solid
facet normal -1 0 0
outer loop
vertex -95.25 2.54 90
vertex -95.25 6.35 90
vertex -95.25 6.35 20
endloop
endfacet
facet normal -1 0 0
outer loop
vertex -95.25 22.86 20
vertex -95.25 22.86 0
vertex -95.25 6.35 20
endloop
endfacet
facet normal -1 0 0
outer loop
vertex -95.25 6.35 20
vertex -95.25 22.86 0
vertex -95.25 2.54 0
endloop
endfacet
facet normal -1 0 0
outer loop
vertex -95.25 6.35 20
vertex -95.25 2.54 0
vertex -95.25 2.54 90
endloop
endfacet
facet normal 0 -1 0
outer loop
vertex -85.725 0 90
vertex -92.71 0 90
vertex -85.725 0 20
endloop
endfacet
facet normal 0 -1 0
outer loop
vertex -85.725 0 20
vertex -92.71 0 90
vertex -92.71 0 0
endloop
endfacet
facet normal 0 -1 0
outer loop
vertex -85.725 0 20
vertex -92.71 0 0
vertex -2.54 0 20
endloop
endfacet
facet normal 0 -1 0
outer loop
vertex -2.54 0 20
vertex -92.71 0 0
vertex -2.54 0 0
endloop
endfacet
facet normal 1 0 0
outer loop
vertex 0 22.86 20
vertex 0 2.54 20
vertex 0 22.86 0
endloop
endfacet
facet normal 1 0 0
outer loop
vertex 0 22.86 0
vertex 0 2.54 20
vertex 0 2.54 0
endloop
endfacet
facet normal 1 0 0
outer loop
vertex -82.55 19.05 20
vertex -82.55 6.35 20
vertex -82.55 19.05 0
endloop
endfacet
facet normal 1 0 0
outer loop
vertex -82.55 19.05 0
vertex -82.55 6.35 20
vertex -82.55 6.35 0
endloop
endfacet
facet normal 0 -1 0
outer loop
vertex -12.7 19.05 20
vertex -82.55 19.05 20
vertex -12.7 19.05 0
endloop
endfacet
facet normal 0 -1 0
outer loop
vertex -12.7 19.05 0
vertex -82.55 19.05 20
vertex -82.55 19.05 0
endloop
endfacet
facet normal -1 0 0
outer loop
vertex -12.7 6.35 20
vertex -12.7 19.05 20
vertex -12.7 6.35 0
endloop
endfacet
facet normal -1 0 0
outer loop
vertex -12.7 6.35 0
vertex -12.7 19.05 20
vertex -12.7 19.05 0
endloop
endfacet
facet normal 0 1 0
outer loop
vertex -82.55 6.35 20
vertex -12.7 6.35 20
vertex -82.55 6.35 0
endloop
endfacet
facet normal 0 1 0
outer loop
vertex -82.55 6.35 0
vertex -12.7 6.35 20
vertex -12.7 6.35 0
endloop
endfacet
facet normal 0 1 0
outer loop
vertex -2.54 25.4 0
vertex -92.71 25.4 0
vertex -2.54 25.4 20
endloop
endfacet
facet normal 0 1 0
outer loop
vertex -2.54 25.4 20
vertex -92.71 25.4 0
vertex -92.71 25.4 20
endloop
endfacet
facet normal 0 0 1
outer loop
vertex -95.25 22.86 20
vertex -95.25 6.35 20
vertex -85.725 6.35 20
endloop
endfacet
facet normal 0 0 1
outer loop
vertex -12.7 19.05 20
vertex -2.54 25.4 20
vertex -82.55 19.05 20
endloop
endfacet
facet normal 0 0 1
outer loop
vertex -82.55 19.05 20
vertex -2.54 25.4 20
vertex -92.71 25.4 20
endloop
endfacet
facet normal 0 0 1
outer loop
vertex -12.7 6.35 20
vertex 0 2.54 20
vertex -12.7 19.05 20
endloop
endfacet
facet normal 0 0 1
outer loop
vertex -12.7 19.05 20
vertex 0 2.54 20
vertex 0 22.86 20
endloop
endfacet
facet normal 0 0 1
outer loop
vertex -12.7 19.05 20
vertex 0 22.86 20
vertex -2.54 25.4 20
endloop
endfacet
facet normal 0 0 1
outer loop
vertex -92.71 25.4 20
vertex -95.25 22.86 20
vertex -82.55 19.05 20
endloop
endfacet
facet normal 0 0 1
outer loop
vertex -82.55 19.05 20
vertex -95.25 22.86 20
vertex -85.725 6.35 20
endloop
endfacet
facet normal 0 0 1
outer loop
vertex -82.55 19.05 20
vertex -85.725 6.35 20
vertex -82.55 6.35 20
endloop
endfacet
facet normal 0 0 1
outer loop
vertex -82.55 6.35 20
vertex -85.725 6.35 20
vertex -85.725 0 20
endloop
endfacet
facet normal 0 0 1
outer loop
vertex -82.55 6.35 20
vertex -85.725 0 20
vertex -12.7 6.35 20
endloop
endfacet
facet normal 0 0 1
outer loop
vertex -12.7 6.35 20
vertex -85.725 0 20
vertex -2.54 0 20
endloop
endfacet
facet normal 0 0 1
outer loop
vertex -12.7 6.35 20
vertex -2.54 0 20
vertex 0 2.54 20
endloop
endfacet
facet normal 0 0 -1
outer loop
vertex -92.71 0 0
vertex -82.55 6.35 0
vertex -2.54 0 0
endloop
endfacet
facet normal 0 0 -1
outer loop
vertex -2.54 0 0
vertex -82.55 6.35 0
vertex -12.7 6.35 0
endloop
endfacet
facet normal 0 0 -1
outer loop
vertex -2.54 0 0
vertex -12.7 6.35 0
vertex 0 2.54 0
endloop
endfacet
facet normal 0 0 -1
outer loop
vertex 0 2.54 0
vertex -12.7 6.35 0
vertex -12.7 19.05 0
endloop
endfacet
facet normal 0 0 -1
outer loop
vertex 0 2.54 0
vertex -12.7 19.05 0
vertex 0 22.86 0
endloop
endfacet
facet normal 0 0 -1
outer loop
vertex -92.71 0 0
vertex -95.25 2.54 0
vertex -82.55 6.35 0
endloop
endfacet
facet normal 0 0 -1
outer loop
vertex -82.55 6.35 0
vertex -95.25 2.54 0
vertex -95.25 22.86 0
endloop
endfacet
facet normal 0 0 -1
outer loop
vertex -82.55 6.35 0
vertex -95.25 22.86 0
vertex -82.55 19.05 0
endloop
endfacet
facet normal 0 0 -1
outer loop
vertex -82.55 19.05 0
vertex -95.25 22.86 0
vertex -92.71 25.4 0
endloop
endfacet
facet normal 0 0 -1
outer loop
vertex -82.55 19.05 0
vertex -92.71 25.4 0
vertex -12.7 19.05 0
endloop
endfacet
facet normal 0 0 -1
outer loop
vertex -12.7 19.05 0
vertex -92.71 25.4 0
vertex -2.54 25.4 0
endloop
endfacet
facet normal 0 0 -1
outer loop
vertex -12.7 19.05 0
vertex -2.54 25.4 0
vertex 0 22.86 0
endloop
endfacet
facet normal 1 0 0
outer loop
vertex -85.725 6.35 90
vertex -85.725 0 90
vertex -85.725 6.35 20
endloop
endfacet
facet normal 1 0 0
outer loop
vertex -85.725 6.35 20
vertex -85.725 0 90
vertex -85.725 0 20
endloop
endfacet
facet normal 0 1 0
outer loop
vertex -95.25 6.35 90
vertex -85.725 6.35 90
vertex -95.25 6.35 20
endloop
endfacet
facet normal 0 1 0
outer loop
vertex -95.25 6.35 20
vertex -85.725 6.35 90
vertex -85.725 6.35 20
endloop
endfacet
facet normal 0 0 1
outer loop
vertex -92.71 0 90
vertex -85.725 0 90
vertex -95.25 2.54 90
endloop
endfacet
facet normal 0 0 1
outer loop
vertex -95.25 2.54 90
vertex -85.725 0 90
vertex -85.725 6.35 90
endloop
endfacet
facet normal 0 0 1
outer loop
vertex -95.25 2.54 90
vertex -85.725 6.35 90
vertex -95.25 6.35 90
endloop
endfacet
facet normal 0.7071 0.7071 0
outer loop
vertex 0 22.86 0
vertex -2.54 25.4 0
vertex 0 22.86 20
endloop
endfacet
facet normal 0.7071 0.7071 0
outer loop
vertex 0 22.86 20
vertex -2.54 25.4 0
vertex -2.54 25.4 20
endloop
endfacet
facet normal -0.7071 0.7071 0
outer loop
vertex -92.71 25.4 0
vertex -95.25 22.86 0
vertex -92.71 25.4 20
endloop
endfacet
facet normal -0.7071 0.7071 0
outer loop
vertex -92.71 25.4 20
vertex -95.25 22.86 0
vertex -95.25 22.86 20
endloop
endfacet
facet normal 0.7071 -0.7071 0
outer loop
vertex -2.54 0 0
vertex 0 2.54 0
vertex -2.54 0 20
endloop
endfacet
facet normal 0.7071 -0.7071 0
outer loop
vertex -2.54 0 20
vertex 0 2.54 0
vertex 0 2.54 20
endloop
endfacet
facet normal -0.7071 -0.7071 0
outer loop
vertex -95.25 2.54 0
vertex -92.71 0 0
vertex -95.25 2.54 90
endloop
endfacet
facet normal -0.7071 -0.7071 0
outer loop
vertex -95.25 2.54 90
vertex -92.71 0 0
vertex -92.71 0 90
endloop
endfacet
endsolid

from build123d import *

# Parameters (mm, degrees)
SKETCH1_W           = 95.25
SKETCH1_H           = 25.4
SKETCH1_W_2         = 69.85
SKETCH1_H_2         = 12.7
BOSS_EXTRUDE1_DEPTH = 20
SKETCH2_W           = 9.525
SKETCH2_H           = 6.35
BOSS_EXTRUDE2_DEPTH = 70
CHAMFER1_SIZE       = 2.54


with BuildPart() as part:
    # Sketch1 → Boss-Extrude1 (new body)
    with BuildSketch(Plane.XY):
        with Locations((-47.625, 12.7)):
            Rectangle(SKETCH1_W, SKETCH1_H)
        with Locations((-47.625, 12.7)):
            Rectangle(SKETCH1_W_2, SKETCH1_H_2, mode=Mode.SUBTRACT)
    extrude(amount=BOSS_EXTRUDE1_DEPTH)

    # Sketch2 → Boss-Extrude2 (add)
    with BuildSketch(Plane.XY.offset(20)):
        with Locations((-90.4875, 3.175)):
            Rectangle(SKETCH2_W, SKETCH2_H)
    extrude(amount=BOSS_EXTRUDE2_DEPTH)

    # Chamfer1
    chamfer1_edges = [part.edges().sort_by_distance(p)[0] for p in [
        (-95.25, 25.4, 10),
        (0, 25.4, 10),
        (0, 0, 10),
        (-95.25, 0, 45),
    ]]
    chamfer(chamfer1_edges, length=CHAMFER1_SIZE)


solid = part.part
